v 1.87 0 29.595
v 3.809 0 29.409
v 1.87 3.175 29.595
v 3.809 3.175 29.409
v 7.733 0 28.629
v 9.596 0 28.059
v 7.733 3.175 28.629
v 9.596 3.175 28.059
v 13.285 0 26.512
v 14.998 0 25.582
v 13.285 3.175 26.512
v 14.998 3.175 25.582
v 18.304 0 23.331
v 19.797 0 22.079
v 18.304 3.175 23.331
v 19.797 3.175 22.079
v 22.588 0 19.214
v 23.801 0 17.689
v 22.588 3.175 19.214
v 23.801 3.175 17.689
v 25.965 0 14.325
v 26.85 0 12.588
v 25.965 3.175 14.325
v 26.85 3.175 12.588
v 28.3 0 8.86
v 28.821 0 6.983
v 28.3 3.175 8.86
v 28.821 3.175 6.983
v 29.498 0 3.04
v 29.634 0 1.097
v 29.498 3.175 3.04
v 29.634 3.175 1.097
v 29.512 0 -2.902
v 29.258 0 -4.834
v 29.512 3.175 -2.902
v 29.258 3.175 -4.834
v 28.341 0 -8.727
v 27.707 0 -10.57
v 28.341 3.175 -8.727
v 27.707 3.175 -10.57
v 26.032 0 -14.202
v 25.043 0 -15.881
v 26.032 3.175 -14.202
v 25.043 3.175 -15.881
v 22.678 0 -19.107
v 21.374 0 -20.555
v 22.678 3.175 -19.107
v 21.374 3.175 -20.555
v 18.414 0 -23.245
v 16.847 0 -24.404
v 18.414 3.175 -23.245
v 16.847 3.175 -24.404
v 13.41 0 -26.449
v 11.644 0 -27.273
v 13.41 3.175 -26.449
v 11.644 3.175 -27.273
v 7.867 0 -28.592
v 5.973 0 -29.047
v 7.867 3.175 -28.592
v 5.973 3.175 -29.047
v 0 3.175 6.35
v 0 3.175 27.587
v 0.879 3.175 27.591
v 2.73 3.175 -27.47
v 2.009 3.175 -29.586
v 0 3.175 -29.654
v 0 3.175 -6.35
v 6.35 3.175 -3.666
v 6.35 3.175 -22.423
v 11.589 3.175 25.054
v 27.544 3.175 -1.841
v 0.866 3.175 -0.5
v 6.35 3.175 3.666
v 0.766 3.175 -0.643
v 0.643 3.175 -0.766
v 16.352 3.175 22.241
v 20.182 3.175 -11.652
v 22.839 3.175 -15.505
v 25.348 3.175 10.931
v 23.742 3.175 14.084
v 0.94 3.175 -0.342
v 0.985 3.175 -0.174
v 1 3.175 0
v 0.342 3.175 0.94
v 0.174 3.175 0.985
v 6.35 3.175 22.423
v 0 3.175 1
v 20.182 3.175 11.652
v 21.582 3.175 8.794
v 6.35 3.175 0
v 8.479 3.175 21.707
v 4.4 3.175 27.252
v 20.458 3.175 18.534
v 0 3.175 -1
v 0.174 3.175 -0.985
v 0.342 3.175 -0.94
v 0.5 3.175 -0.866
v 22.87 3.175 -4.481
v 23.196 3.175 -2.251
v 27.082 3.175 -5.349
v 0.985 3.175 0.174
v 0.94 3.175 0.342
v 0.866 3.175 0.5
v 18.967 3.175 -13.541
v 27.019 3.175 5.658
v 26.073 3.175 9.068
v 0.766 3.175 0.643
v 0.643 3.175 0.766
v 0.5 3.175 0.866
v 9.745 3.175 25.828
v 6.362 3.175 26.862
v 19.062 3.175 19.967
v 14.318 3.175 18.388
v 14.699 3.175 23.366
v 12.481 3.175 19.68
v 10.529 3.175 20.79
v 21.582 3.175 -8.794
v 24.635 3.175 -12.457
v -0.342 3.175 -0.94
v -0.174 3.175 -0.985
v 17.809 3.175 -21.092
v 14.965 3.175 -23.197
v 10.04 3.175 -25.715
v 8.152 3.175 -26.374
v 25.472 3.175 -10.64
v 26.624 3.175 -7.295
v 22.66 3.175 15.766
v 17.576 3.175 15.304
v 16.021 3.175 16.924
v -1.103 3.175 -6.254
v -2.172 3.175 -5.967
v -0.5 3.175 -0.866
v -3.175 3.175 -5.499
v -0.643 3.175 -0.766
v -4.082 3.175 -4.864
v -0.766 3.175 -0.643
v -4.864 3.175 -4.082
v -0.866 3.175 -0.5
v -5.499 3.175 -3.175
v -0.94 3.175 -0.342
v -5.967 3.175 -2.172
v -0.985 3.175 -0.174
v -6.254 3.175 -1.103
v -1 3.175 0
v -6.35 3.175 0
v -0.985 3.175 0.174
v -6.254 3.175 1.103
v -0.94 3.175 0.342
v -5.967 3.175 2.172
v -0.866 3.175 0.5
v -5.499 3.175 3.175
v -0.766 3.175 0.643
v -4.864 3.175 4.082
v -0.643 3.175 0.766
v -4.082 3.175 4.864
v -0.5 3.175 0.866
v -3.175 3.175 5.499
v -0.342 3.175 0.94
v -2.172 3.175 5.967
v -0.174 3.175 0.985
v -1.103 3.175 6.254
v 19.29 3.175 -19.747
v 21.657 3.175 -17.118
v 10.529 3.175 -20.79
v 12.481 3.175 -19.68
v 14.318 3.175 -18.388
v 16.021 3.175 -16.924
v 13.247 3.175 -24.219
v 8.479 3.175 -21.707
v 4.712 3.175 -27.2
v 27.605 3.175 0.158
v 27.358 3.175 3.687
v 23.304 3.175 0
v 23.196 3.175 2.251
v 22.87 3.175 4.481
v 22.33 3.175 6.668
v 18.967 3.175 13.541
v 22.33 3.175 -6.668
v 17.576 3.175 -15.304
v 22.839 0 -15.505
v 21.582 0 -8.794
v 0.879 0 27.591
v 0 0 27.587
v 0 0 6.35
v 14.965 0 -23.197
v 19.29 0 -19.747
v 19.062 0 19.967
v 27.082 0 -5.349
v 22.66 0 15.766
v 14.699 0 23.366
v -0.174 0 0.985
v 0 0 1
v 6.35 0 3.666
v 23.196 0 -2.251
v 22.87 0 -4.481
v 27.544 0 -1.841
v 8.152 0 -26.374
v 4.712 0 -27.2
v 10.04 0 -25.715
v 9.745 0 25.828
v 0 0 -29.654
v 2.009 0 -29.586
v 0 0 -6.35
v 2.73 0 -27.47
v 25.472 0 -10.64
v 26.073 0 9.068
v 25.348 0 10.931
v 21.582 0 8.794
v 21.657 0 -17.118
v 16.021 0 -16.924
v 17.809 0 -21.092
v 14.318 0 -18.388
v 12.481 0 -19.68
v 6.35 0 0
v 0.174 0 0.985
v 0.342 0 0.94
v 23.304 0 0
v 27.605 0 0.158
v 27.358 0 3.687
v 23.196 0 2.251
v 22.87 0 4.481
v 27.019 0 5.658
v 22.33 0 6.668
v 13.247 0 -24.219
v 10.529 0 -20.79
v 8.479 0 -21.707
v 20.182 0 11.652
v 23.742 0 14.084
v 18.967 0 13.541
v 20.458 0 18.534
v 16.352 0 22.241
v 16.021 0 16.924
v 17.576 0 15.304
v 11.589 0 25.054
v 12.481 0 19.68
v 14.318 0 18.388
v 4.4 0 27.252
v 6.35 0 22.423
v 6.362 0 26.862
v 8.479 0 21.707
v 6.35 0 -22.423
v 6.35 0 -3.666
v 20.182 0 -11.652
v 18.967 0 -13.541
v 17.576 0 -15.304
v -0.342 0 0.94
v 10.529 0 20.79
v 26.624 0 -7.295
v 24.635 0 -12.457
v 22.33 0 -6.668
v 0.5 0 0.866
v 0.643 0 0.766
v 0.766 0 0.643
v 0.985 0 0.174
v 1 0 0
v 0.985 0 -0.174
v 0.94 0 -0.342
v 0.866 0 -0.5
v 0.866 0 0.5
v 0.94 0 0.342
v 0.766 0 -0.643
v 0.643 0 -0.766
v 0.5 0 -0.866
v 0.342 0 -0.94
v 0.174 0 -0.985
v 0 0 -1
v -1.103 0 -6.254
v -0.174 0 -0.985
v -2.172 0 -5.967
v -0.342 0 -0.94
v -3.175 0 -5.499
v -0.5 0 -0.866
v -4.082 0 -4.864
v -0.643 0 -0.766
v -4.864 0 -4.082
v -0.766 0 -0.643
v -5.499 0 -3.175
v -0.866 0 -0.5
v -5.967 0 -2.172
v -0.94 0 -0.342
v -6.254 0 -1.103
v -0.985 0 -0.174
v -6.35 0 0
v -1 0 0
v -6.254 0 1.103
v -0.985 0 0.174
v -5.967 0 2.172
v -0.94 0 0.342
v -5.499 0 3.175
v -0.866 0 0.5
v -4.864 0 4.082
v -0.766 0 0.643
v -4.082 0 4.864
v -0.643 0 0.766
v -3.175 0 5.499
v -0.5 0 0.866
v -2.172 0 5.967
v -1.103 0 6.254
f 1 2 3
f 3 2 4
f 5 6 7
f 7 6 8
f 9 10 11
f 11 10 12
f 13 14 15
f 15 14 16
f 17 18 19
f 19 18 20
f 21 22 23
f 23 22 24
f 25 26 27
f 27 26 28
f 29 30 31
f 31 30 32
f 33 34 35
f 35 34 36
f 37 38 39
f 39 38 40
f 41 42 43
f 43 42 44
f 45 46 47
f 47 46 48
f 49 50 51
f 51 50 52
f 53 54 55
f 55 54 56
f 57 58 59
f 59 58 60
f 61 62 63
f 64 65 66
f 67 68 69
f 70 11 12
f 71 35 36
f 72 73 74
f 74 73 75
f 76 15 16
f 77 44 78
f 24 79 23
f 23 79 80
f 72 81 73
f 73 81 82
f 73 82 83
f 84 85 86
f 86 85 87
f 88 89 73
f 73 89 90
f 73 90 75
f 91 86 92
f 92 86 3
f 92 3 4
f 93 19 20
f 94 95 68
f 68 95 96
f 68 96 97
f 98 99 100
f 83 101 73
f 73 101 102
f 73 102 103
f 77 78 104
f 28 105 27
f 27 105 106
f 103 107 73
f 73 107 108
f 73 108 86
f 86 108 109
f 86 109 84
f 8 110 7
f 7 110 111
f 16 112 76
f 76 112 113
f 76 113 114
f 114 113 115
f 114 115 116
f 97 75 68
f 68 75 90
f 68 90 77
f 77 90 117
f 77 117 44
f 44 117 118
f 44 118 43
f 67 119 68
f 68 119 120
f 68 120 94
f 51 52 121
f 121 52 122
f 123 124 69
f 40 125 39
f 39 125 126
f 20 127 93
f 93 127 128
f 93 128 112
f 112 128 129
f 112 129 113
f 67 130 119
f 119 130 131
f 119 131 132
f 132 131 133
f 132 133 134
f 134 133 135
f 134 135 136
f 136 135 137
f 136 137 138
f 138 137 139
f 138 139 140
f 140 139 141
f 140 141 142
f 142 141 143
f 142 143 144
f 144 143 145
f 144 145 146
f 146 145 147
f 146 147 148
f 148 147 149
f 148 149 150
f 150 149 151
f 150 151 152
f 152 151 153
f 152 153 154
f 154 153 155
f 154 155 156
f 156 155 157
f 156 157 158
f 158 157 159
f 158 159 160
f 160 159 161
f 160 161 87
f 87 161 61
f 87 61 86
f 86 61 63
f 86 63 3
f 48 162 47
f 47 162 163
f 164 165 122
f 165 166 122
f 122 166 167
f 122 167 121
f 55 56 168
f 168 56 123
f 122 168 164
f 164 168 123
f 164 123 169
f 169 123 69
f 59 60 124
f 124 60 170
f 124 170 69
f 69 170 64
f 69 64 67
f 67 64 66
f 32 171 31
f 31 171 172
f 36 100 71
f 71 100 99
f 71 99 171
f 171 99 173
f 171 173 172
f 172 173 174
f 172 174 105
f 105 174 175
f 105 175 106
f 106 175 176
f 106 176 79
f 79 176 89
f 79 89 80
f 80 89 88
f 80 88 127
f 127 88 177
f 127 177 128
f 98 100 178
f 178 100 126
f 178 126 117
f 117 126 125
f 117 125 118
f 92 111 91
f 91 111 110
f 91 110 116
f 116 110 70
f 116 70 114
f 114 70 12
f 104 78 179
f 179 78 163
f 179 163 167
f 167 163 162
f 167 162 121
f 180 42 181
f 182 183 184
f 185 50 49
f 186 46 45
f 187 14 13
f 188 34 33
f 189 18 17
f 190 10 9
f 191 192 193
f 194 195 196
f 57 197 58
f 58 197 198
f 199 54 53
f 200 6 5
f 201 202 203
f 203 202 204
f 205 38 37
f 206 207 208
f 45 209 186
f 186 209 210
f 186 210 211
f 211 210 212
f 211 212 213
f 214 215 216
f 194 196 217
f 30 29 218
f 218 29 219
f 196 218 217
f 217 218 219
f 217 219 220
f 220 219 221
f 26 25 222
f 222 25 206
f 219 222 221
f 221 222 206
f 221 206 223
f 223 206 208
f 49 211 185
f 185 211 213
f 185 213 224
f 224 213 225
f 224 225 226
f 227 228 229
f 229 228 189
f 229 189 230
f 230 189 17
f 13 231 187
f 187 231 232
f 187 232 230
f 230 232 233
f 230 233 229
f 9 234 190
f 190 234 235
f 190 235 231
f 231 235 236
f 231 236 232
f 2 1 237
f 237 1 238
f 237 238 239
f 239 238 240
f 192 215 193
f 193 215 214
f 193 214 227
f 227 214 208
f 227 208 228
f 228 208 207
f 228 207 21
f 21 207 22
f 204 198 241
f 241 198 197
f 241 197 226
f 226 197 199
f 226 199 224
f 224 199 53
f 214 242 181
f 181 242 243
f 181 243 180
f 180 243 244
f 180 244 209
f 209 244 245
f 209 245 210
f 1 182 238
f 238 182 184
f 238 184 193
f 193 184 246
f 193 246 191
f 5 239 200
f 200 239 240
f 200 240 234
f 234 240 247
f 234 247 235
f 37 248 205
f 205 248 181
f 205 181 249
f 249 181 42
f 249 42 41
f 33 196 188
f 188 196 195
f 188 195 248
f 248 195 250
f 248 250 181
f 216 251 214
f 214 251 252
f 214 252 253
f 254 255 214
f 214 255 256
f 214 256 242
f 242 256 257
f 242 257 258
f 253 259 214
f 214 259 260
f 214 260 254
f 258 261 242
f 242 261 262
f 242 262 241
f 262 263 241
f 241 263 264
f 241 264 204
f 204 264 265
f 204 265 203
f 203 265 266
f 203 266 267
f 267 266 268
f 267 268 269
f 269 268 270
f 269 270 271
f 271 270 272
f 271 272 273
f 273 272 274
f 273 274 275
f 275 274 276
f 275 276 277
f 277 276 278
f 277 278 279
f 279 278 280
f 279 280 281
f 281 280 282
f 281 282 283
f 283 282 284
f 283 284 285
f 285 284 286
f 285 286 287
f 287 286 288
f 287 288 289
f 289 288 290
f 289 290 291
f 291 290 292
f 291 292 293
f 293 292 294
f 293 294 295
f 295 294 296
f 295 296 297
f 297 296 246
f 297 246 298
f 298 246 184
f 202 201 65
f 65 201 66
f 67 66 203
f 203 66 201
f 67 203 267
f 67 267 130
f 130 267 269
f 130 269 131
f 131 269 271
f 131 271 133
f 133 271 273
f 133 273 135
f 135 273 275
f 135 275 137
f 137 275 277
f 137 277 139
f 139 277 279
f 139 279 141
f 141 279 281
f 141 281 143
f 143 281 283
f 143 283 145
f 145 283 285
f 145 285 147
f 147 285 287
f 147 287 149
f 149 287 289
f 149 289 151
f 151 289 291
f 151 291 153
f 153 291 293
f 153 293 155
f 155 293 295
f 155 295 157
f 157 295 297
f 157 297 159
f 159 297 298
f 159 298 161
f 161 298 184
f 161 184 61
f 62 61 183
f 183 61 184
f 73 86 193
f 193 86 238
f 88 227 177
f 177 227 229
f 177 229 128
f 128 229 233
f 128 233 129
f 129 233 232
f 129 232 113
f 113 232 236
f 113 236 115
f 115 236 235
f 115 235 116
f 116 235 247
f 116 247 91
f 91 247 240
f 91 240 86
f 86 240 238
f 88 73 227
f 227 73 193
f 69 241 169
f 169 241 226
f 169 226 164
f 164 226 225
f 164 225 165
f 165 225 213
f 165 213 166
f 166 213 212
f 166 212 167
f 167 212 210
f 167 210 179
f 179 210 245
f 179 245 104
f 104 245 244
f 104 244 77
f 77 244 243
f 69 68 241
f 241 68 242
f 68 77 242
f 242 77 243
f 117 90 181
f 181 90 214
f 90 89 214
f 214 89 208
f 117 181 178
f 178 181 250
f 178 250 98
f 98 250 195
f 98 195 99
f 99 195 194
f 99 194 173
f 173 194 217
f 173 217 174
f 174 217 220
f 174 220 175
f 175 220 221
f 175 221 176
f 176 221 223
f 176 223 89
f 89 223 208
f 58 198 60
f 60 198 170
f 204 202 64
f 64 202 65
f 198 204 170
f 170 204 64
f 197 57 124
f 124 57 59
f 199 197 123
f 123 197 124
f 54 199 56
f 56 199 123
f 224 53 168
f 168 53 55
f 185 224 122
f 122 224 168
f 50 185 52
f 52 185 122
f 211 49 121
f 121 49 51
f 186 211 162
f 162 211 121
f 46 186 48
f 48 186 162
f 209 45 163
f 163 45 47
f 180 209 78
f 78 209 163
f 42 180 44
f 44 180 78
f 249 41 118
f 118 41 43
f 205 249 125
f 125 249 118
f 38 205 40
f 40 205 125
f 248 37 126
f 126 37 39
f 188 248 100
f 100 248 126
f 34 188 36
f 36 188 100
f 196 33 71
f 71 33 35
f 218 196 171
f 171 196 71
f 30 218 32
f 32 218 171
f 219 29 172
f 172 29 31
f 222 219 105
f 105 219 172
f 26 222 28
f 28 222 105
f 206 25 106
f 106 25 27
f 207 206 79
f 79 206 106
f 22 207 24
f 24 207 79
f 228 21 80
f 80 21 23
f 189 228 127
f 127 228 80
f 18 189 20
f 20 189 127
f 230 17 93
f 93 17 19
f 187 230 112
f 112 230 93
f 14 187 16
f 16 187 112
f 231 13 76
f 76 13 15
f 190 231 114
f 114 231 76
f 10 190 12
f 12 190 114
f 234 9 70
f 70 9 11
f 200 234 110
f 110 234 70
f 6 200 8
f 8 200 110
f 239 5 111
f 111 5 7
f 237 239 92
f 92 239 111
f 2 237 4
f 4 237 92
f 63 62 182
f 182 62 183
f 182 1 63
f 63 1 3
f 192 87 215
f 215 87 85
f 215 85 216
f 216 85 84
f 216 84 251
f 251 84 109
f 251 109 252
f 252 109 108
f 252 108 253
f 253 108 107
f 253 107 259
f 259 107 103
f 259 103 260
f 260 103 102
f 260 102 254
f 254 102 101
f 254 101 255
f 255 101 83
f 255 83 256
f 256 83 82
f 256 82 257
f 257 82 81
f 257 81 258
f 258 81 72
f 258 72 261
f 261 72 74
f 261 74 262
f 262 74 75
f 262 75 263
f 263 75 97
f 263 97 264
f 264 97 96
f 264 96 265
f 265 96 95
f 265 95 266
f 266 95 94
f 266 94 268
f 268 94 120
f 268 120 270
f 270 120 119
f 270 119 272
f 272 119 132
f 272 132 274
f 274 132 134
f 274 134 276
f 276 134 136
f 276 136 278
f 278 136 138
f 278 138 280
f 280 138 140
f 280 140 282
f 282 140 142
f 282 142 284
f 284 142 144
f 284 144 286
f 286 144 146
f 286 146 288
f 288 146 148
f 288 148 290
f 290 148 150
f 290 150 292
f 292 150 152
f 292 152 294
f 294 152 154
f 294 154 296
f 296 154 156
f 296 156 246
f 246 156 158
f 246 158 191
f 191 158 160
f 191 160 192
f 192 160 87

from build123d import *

# Parameters (mm, degrees)
BOSS_EXTRUDE1_DEPTH = 3.175
CUT_EXTRUDE1_DEPTH  = 3.175
CIRPATTERN1_DEPTH   = 3.175
SKETCH3_R           = 1
CUT_EXTRUDE2_DEPTH  = 3.175


# Read off the part's stored shape, not the designer's step: CirPattern1
with BuildPart() as part:
    # Sketch1 → Boss-Extrude1 (new body)
    with BuildSketch(Plane(origin=(0, 0, 0), x_dir=(1, 0, 0), z_dir=(0, 1, 0))):
        with BuildLine():
            Line((0, 29.6545), (0, 6.35))
            ThreePointArc((0, 6.35), (-6.35, 0), (0, -6.35))
            Line((0, -6.35), (0, -29.6545))
            ThreePointArc((0, -29.6545), (29.6545, 0), (0, 29.6545))
        make_face()
        with BuildLine():
            Line((6.35, 22.422694313), (6.35, 3.666174209))
            Line((6.35, 3.666174209), (20.182289022, 11.65225))
            ThreePointArc((20.182289022, 11.65225), (14.317514025, 18.387727222), (6.35, 22.422694313))
        make_face(mode=Mode.SUBTRACT)
        with BuildLine():
            Line((6.35, 0), (21.581607168, -8.793972499))
            ThreePointArc((21.581607168, -8.793972499), (23.3045, 0), (21.581607168, 8.793972499))
            Line((21.581607168, 8.793972499), (6.35, 0))
        make_face(mode=Mode.SUBTRACT)
        with BuildLine():
            Line((6.35, -3.666174209), (20.182289022, -11.65225))
            ThreePointArc((20.182289022, -11.65225), (14.317514025, -18.387727222), (6.35, -22.422694313))
            Line((6.35, -22.422694313), (6.35, -3.666174209))
        make_face(mode=Mode.SUBTRACT)
    extrude(amount=BOSS_EXTRUDE1_DEPTH)

    # Sketch2 → Cut-Extrude1 (cut)
    with BuildSketch(Plane(origin=(0, 3.175, 0), x_dir=(1, 0, 0), z_dir=(0, 1, 0))):
        Polygon((2.009170374, 29.586358422), (2.730257833, 27.469749607), (4.711979869, 27.199976048), (5.972614446, 29.046811304), align=None)
    extrude(amount=-CUT_EXTRUDE1_DEPTH, mode=Mode.SUBTRACT)


with BuildPart() as body_2:
    # of the pieces the cut leaves, the one that is kept (cut_extrude1_keep)
    add(part.part.solids().sort_by_distance((0, 0, -29.6545))[0])

    # CirPattern1 outline → CirPattern1 (cut)
    with BuildSketch(Plane(origin=(0, 0, 0), x_dir=(1, 0, 0), z_dir=(0, 1, 0))):
        with BuildLine():
            ThreePointArc((11.643715218, 27.272940182), (9.777824138, 27.996134115), (7.867406851, 28.59183939))
            Line((7.867406851, 28.59183939), (8.152034339, 26.373960405))
            Line((8.152034339, 26.373960405), (10.040188522, 25.714510801))
            Line((10.040188522, 25.714510801), (11.643715218, 27.272940182))
        make_face()
        with BuildLine():
            ThreePointArc((0, -29.6545), (0.935371957, -29.639744425), (1.869813063, -29.595492382))
            Line((1.869813063, -29.595492382), (0.878621718, -27.591112249))
            Line((0.878621718, -27.591112249), (0, -27.587246726))
            Line((0, -27.587246726), (0, -29.6545))
        make_face()
        with BuildLine():
            ThreePointArc((3.809498846, -29.408792712), (5.784253675, -29.084906389), (7.732668198, -28.628573363))
            Line((7.732668198, -28.628573363), (6.361766185, -26.862043524))
            Line((6.361766185, -26.862043524), (4.400181509, -27.252153199))
            Line((4.400181509, -27.252153199), (3.809498846, -29.408792712))
        make_face()
        with BuildLine():
            ThreePointArc((9.596192288, -28.058910596), (11.466730783, -27.347823595), (13.285052137, -26.51220021))
            Line((13.285052137, -26.51220021), (11.589481982, -25.054447882))
            Line((11.589481982, -25.054447882), (9.745052057, -25.827803075))
            Line((9.745052057, -25.827803075), (9.596192288, -28.058910596))
        make_face()
        with BuildLine():
            ThreePointArc((14.997592941, -25.582446643), (16.688811877, -24.512709528), (18.304033384, -23.331346556))
            Line((18.304033384, -23.331346556), (16.35187323, -22.240901357))
            Line((16.35187323, -22.240901357), (14.698653008, -23.3664514))
            Line((14.698653008, -23.3664514), (14.997592941, -25.582446643))
        make_face()
        with BuildLine():
            ThreePointArc((19.796831377, -22.078832344), (21.240827314, -20.693395692), (22.588096877, -19.213725556))
            Line((22.588096877, -19.213725556), (20.457727108, -18.534369503))
            Line((20.457727108, -18.534369503), (19.062094358, -19.966922897))
            Line((19.062094358, -19.966922897), (19.796831377, -22.078832344))
        make_face()
        with BuildLine():
            ThreePointArc((23.801215338, -17.688739883), (24.940010987, -16.043229793), (25.965234936, -14.324662123))
            Line((25.965234936, -14.324662123), (23.742191157, -14.083671764))
            Line((23.742191157, -14.083671764), (22.660181358, -15.765710644))
            Line((22.660181358, -15.765710644), (23.801215338, -17.688739883))
        make_face()
        with BuildLine():
            ThreePointArc((26.849966443, -12.588434067), (27.637838485, -10.748918742), (28.299853474, -8.860455044))
            Line((28.299853474, -8.860455044), (26.073392205, -9.067506284))
            Line((26.073392205, -9.067506284), (25.348448689, -10.931495795))
            Line((25.348448689, -10.931495795), (26.849966443, -12.588434067))
        make_face()
        with BuildLine():
            ThreePointArc((28.820675533, -6.982695186), (29.22599044, -5.023032253), (29.498216176, -3.04049546))
            Line((29.498216176, -3.04049546), (27.357731153, -3.68727507))
            Line((27.357731153, -3.68727507), (27.018960831, -5.658374932))
            Line((27.018960831, -5.658374932), (28.820675533, -6.982695186))
        make_face()
        with BuildLine():
            ThreePointArc((29.634217474, -1.096596968), (29.640701614, 0.904531949), (29.512208073, 2.901541813))
            Line((29.512208073, 2.901541813), (27.543641034, 1.841002417))
            Line((27.543641034, 1.841002417), (27.604645734, -0.158066973))
            Line((27.604645734, -0.158066973), (29.634217474, -1.096596968))
        make_face()
        with BuildLine():
            ThreePointArc((29.257928078, 4.833530266), (28.865321108, 6.795778658), (28.341267381, 8.727080467))
            Line((28.341267381, 8.727080467), (26.623657455, 7.295362569))
            Line((26.623657455, 7.295362569), (27.081987803, 5.348587468))
            Line((27.081987803, 5.348587468), (29.257928078, 4.833530266))
        make_face()
        with BuildLine():
            ThreePointArc((27.706915584, 10.569588405), (26.930980906, 12.41417084), (26.03240806, 14.202221686))
            Line((26.03240806, 14.202221686), (24.634718301, 12.456809604))
            Line((24.634718301, 12.456809604), (25.471972063, 10.640492963))
            Line((25.471972063, 10.640492963), (27.706915584, 10.569588405))
        make_face()
        with BuildLine():
            ThreePointArc((25.043454062, 15.881271325), (23.915345912, 17.534126729), (22.678332178, 19.107135313))
            Line((22.678332178, 19.107135313), (21.656680655, 17.118108374))
            Line((21.656680655, 17.118108374), (22.839241597, 15.50517638))
            Line((22.839241597, 15.50517638), (25.043454062, 15.881271325))
        make_face()
        with BuildLine():
            ThreePointArc((21.374483065, 20.555311819), (19.939495651, 21.950077071), (18.413707861, 23.24488617))
            Line((18.413707861, 23.24488617), (17.809114486, 21.092104981))
            Line((17.809114486, 21.092104981), (19.289502088, 19.747317805))
            Line((19.289502088, 19.747317805), (21.374483065, 20.555311819))
        make_face()
        with BuildLine():
            ThreePointArc((16.847313945, 24.4040444), (15.16306286, 25.484718851), (13.409762295, 26.449341116))
            Line((13.409762295, 26.449341116), (13.24650185, 24.219241112))
            Line((13.24650185, 24.219241112), (14.965277675, 23.196592754))
            Line((14.965277675, 23.196592754), (16.847313945, 24.4040444))
        make_face()
    extrude(amount=CIRPATTERN1_DEPTH, mode=Mode.SUBTRACT)

    # Sketch3 → Cut-Extrude2 (cut)
    with BuildSketch(Plane(origin=(0, 3.175, 0), x_dir=(1, 0, 0), z_dir=(0, 1, 0))):
        with Locations(Location((0, 0, 0), (0, 0, 270))):
            Circle(SKETCH3_R)
    extrude(amount=-CUT_EXTRUDE2_DEPTH, mode=Mode.SUBTRACT)


solid = body_2.part
